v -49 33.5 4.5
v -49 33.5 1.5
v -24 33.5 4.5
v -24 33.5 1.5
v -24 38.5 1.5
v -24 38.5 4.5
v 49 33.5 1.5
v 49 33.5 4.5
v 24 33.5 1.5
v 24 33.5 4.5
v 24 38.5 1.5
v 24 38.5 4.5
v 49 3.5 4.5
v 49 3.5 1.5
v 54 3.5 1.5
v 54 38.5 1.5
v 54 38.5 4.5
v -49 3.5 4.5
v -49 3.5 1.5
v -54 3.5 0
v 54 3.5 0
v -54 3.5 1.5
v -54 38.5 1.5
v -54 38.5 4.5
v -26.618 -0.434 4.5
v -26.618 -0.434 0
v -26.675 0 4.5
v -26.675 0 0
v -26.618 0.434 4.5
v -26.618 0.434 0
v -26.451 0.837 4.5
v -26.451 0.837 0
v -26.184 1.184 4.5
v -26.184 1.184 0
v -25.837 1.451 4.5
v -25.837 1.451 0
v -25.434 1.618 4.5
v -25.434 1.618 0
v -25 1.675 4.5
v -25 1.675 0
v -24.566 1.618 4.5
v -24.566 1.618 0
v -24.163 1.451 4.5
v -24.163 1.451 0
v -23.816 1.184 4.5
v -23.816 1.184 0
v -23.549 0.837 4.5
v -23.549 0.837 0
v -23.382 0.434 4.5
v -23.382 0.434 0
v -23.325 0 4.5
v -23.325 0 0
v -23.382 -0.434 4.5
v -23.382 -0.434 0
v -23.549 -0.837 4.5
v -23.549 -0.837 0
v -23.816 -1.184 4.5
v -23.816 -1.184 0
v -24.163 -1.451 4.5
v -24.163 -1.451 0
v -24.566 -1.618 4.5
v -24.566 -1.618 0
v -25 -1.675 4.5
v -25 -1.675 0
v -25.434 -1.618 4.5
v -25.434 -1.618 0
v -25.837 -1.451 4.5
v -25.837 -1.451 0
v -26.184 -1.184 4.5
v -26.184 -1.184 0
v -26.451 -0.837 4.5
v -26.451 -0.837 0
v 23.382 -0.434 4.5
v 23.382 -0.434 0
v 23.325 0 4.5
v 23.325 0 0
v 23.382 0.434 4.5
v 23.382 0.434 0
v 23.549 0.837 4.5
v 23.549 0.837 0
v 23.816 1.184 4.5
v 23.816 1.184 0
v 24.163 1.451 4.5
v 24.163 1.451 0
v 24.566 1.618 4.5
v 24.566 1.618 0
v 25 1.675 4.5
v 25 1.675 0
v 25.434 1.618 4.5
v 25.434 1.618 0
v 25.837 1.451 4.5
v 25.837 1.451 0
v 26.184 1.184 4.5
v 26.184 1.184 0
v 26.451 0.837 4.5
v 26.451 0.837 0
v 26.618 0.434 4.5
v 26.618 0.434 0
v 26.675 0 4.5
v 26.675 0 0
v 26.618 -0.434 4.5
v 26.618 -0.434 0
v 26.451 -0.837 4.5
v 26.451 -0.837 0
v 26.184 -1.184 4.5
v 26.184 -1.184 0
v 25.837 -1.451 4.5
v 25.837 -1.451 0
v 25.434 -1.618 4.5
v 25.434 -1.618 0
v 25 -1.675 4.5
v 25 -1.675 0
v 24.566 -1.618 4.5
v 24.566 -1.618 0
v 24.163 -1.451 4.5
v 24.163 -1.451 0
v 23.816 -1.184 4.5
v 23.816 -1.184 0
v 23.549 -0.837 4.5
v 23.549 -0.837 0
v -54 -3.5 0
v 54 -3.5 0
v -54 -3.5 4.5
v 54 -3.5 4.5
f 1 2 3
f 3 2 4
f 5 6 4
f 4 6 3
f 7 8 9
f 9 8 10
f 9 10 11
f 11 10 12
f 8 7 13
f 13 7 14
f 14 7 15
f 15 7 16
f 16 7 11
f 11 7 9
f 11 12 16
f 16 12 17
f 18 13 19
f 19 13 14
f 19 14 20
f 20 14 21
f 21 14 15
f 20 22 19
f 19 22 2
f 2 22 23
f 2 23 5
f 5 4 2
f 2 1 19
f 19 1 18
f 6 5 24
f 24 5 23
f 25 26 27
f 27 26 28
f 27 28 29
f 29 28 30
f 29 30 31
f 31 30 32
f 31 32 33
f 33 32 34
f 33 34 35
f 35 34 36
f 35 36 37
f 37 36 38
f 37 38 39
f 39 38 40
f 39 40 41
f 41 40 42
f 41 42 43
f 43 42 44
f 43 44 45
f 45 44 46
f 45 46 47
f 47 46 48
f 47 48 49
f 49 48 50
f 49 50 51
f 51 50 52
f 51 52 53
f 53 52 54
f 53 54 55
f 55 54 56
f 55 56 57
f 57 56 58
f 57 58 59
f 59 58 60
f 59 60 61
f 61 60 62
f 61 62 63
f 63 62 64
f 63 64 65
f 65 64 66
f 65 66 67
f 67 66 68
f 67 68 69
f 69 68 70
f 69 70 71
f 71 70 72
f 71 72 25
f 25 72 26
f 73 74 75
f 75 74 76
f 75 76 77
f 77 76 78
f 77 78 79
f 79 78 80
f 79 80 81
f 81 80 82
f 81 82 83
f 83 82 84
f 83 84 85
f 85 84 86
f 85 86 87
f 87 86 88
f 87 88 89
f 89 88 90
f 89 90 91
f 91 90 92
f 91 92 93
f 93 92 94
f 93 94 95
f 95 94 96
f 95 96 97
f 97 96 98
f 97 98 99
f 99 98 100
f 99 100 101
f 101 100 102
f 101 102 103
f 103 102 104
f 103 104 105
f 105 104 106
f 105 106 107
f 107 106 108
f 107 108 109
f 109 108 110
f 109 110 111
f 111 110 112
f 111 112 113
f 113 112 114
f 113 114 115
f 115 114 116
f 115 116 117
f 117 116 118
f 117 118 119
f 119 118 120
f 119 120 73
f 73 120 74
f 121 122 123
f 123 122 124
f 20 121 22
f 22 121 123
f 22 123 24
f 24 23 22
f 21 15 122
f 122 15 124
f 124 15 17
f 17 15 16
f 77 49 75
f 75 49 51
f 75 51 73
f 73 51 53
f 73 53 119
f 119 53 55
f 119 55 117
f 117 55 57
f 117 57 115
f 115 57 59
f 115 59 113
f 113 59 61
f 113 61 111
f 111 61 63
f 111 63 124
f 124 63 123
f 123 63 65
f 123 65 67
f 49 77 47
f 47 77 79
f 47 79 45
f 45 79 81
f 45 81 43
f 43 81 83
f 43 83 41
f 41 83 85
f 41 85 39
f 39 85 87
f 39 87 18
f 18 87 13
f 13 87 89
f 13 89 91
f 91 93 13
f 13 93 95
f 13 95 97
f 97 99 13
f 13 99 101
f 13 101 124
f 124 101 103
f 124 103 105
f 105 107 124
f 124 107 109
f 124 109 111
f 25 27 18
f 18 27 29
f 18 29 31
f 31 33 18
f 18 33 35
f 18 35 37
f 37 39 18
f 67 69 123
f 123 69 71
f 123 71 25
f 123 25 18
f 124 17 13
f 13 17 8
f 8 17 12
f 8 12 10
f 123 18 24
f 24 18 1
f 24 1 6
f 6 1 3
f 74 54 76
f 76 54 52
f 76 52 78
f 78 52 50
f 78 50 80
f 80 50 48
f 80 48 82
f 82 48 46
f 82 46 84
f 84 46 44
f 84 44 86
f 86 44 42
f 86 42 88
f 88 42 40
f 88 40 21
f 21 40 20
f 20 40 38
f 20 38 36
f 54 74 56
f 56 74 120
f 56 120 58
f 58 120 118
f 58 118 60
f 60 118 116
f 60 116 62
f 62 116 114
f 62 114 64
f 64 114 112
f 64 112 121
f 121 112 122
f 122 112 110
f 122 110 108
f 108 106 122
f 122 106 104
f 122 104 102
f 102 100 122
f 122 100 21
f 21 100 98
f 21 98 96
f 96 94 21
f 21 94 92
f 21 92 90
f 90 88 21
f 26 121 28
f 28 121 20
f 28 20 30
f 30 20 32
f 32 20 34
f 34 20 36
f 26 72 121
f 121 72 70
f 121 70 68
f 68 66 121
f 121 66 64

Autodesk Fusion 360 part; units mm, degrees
sketch "Sketch1" plane through (0, 0, 0) normal (0, 0, 1) x (1, 0, 0)
  line L0 (54, 3.5) -> (-54, 3.5)
  line L1 (-54, 3.5) -> (-54, -3.5)
  line L2 (-54, -3.5) -> (54, -3.5)
  line L3 (54, -3.5) -> (54, 3.5)
  line L4 (54, 3.5) -> (-54, -3.5) construction
  line L5 (-54, 3.5) -> (54, -3.5) construction
  circle A0 centre (-25, 0) radius 1.675
  line L6 (0, 3.5) -> (0, -3.5) construction
  circle A1 centre (25, 0) radius 1.675
  dimension "d1" = 108
  dimension "width" = 7
  dimension "d3" = 3.35
  dimension "d21" = 25
extrude "Extrude1" add sketch "Sketch1" along normal blind 4.5
sketch "Sketch2" plane through (0, 3.5, 0) normal (0, 1, 0) x (-1, 0, 0)
  line L0 (-54, 0) -> (54, 0)
  line L1 (54, 0) -> (54, 4.5)
  line L2 (54, 4.5) -> (-54, 4.5)
  line L3 (-54, 4.5) -> (-54, 0)
  line L4 (-54, 4.5) -> (-49, 4.5)
  line L5 (-49, 4.5) -> (-49, 1.5)
  line L6 (-49, 1.5) -> (-54, 1.5)
  line L7 (-54, 1.5) -> (-54, 4.5)
  line L8 (0, 4.5) -> (0, 0) construction
  line L9 (49, 4.5) -> (49, 1.5)
  line L10 (49, 1.5) -> (54, 1.5)
  line L11 (54, 1.5) -> (54, 4.5)
  line L12 (54, 4.5) -> (49, 4.5)
  dimension "d6" = 5
extrude "Extrude2" add sketch "Sketch2" along normal blind 35 contours L2 L3 L4 L5 L6 L7 | L1 L2 L9 L10 L11 L12
sketch "Sketch3" plane through (-49, 0, 0) normal (1, 0, 0) x (0, 1, 0)
  line L0 (3.5, 4.5) -> (3.5, 1.5)
  line L1 (3.5, 1.5) -> (38.5, 1.5)
  line L2 (38.5, 1.5) -> (38.5, 4.5)
  line L3 (38.5, 4.5) -> (3.5, 4.5)
  line L4 (38.5, 4.5) -> (33.5, 4.5)
  line L5 (33.5, 4.5) -> (33.5, 1.5)
  line L6 (33.5, 1.5) -> (38.5, 1.5)
  line L7 (38.5, 1.5) -> (38.5, 4.5)
  dimension "d9" = 5
sketch "Sketch4" plane through (49, 0, 0) normal (-1, 0, 0) x (0, -1, 0)
  line L0 (-3.5, 1.5) -> (-3.5, 4.5)
  line L1 (-3.5, 4.5) -> (-38.5, 4.5)
  line L2 (-38.5, 4.5) -> (-38.5, 1.5)
  line L3 (-38.5, 1.5) -> (-3.5, 1.5)
  line L4 (-38.5, 4.5) -> (-33.5, 4.5)
  line L5 (-33.5, 4.5) -> (-33.5, 1.5)
  line L6 (-33.5, 1.5) -> (-38.5, 1.5)
  line L7 (-38.5, 1.5) -> (-38.5, 4.5)
  dimension "d10" = 5
extrude "Extrude3" add sketch "Sketch4" along normal blind 25 contours L1 L2 L3 L4 L5 L6 L7
extrude "Extrude4" add sketch "Sketch3" along normal blind 25 contours L1 L2 L3 L4 L5 L6 L7
sketch "Sketch5" plane through (0, 0, 4.5) normal (0, 0, 1) x (-1, 0, 0)
  circle A0 centre (25, 0) radius 1.675
  circle A1 centre (-25, 0) radius 1.675
  line L0 (-54, 3.5) -> (-54, -38.5)
  line L1 (-54, -38.5) -> (-24, -38.5)
  line L2 (-24, -38.5) -> (-24, -33.5)
  line L3 (-24, -33.5) -> (-49, -33.5)
  line L4 (-49, -33.5) -> (-49, -3.5)
  line L5 (-49, -3.5) -> (49, -3.5)
  line L6 (49, -3.5) -> (49, -33.5)
  line L7 (49, -33.5) -> (24, -33.5)
  line L8 (24, -33.5) -> (24, -38.5)
  line L9 (24, -38.5) -> (54, -38.5)
  line L10 (54, -38.5) -> (54, 3.5)
  line L11 (54, 3.5) -> (-54, 3.5)
  line L12 (-24, -36) -> (-54, -36) construction
extrude "Extrude5" [suppressed]
